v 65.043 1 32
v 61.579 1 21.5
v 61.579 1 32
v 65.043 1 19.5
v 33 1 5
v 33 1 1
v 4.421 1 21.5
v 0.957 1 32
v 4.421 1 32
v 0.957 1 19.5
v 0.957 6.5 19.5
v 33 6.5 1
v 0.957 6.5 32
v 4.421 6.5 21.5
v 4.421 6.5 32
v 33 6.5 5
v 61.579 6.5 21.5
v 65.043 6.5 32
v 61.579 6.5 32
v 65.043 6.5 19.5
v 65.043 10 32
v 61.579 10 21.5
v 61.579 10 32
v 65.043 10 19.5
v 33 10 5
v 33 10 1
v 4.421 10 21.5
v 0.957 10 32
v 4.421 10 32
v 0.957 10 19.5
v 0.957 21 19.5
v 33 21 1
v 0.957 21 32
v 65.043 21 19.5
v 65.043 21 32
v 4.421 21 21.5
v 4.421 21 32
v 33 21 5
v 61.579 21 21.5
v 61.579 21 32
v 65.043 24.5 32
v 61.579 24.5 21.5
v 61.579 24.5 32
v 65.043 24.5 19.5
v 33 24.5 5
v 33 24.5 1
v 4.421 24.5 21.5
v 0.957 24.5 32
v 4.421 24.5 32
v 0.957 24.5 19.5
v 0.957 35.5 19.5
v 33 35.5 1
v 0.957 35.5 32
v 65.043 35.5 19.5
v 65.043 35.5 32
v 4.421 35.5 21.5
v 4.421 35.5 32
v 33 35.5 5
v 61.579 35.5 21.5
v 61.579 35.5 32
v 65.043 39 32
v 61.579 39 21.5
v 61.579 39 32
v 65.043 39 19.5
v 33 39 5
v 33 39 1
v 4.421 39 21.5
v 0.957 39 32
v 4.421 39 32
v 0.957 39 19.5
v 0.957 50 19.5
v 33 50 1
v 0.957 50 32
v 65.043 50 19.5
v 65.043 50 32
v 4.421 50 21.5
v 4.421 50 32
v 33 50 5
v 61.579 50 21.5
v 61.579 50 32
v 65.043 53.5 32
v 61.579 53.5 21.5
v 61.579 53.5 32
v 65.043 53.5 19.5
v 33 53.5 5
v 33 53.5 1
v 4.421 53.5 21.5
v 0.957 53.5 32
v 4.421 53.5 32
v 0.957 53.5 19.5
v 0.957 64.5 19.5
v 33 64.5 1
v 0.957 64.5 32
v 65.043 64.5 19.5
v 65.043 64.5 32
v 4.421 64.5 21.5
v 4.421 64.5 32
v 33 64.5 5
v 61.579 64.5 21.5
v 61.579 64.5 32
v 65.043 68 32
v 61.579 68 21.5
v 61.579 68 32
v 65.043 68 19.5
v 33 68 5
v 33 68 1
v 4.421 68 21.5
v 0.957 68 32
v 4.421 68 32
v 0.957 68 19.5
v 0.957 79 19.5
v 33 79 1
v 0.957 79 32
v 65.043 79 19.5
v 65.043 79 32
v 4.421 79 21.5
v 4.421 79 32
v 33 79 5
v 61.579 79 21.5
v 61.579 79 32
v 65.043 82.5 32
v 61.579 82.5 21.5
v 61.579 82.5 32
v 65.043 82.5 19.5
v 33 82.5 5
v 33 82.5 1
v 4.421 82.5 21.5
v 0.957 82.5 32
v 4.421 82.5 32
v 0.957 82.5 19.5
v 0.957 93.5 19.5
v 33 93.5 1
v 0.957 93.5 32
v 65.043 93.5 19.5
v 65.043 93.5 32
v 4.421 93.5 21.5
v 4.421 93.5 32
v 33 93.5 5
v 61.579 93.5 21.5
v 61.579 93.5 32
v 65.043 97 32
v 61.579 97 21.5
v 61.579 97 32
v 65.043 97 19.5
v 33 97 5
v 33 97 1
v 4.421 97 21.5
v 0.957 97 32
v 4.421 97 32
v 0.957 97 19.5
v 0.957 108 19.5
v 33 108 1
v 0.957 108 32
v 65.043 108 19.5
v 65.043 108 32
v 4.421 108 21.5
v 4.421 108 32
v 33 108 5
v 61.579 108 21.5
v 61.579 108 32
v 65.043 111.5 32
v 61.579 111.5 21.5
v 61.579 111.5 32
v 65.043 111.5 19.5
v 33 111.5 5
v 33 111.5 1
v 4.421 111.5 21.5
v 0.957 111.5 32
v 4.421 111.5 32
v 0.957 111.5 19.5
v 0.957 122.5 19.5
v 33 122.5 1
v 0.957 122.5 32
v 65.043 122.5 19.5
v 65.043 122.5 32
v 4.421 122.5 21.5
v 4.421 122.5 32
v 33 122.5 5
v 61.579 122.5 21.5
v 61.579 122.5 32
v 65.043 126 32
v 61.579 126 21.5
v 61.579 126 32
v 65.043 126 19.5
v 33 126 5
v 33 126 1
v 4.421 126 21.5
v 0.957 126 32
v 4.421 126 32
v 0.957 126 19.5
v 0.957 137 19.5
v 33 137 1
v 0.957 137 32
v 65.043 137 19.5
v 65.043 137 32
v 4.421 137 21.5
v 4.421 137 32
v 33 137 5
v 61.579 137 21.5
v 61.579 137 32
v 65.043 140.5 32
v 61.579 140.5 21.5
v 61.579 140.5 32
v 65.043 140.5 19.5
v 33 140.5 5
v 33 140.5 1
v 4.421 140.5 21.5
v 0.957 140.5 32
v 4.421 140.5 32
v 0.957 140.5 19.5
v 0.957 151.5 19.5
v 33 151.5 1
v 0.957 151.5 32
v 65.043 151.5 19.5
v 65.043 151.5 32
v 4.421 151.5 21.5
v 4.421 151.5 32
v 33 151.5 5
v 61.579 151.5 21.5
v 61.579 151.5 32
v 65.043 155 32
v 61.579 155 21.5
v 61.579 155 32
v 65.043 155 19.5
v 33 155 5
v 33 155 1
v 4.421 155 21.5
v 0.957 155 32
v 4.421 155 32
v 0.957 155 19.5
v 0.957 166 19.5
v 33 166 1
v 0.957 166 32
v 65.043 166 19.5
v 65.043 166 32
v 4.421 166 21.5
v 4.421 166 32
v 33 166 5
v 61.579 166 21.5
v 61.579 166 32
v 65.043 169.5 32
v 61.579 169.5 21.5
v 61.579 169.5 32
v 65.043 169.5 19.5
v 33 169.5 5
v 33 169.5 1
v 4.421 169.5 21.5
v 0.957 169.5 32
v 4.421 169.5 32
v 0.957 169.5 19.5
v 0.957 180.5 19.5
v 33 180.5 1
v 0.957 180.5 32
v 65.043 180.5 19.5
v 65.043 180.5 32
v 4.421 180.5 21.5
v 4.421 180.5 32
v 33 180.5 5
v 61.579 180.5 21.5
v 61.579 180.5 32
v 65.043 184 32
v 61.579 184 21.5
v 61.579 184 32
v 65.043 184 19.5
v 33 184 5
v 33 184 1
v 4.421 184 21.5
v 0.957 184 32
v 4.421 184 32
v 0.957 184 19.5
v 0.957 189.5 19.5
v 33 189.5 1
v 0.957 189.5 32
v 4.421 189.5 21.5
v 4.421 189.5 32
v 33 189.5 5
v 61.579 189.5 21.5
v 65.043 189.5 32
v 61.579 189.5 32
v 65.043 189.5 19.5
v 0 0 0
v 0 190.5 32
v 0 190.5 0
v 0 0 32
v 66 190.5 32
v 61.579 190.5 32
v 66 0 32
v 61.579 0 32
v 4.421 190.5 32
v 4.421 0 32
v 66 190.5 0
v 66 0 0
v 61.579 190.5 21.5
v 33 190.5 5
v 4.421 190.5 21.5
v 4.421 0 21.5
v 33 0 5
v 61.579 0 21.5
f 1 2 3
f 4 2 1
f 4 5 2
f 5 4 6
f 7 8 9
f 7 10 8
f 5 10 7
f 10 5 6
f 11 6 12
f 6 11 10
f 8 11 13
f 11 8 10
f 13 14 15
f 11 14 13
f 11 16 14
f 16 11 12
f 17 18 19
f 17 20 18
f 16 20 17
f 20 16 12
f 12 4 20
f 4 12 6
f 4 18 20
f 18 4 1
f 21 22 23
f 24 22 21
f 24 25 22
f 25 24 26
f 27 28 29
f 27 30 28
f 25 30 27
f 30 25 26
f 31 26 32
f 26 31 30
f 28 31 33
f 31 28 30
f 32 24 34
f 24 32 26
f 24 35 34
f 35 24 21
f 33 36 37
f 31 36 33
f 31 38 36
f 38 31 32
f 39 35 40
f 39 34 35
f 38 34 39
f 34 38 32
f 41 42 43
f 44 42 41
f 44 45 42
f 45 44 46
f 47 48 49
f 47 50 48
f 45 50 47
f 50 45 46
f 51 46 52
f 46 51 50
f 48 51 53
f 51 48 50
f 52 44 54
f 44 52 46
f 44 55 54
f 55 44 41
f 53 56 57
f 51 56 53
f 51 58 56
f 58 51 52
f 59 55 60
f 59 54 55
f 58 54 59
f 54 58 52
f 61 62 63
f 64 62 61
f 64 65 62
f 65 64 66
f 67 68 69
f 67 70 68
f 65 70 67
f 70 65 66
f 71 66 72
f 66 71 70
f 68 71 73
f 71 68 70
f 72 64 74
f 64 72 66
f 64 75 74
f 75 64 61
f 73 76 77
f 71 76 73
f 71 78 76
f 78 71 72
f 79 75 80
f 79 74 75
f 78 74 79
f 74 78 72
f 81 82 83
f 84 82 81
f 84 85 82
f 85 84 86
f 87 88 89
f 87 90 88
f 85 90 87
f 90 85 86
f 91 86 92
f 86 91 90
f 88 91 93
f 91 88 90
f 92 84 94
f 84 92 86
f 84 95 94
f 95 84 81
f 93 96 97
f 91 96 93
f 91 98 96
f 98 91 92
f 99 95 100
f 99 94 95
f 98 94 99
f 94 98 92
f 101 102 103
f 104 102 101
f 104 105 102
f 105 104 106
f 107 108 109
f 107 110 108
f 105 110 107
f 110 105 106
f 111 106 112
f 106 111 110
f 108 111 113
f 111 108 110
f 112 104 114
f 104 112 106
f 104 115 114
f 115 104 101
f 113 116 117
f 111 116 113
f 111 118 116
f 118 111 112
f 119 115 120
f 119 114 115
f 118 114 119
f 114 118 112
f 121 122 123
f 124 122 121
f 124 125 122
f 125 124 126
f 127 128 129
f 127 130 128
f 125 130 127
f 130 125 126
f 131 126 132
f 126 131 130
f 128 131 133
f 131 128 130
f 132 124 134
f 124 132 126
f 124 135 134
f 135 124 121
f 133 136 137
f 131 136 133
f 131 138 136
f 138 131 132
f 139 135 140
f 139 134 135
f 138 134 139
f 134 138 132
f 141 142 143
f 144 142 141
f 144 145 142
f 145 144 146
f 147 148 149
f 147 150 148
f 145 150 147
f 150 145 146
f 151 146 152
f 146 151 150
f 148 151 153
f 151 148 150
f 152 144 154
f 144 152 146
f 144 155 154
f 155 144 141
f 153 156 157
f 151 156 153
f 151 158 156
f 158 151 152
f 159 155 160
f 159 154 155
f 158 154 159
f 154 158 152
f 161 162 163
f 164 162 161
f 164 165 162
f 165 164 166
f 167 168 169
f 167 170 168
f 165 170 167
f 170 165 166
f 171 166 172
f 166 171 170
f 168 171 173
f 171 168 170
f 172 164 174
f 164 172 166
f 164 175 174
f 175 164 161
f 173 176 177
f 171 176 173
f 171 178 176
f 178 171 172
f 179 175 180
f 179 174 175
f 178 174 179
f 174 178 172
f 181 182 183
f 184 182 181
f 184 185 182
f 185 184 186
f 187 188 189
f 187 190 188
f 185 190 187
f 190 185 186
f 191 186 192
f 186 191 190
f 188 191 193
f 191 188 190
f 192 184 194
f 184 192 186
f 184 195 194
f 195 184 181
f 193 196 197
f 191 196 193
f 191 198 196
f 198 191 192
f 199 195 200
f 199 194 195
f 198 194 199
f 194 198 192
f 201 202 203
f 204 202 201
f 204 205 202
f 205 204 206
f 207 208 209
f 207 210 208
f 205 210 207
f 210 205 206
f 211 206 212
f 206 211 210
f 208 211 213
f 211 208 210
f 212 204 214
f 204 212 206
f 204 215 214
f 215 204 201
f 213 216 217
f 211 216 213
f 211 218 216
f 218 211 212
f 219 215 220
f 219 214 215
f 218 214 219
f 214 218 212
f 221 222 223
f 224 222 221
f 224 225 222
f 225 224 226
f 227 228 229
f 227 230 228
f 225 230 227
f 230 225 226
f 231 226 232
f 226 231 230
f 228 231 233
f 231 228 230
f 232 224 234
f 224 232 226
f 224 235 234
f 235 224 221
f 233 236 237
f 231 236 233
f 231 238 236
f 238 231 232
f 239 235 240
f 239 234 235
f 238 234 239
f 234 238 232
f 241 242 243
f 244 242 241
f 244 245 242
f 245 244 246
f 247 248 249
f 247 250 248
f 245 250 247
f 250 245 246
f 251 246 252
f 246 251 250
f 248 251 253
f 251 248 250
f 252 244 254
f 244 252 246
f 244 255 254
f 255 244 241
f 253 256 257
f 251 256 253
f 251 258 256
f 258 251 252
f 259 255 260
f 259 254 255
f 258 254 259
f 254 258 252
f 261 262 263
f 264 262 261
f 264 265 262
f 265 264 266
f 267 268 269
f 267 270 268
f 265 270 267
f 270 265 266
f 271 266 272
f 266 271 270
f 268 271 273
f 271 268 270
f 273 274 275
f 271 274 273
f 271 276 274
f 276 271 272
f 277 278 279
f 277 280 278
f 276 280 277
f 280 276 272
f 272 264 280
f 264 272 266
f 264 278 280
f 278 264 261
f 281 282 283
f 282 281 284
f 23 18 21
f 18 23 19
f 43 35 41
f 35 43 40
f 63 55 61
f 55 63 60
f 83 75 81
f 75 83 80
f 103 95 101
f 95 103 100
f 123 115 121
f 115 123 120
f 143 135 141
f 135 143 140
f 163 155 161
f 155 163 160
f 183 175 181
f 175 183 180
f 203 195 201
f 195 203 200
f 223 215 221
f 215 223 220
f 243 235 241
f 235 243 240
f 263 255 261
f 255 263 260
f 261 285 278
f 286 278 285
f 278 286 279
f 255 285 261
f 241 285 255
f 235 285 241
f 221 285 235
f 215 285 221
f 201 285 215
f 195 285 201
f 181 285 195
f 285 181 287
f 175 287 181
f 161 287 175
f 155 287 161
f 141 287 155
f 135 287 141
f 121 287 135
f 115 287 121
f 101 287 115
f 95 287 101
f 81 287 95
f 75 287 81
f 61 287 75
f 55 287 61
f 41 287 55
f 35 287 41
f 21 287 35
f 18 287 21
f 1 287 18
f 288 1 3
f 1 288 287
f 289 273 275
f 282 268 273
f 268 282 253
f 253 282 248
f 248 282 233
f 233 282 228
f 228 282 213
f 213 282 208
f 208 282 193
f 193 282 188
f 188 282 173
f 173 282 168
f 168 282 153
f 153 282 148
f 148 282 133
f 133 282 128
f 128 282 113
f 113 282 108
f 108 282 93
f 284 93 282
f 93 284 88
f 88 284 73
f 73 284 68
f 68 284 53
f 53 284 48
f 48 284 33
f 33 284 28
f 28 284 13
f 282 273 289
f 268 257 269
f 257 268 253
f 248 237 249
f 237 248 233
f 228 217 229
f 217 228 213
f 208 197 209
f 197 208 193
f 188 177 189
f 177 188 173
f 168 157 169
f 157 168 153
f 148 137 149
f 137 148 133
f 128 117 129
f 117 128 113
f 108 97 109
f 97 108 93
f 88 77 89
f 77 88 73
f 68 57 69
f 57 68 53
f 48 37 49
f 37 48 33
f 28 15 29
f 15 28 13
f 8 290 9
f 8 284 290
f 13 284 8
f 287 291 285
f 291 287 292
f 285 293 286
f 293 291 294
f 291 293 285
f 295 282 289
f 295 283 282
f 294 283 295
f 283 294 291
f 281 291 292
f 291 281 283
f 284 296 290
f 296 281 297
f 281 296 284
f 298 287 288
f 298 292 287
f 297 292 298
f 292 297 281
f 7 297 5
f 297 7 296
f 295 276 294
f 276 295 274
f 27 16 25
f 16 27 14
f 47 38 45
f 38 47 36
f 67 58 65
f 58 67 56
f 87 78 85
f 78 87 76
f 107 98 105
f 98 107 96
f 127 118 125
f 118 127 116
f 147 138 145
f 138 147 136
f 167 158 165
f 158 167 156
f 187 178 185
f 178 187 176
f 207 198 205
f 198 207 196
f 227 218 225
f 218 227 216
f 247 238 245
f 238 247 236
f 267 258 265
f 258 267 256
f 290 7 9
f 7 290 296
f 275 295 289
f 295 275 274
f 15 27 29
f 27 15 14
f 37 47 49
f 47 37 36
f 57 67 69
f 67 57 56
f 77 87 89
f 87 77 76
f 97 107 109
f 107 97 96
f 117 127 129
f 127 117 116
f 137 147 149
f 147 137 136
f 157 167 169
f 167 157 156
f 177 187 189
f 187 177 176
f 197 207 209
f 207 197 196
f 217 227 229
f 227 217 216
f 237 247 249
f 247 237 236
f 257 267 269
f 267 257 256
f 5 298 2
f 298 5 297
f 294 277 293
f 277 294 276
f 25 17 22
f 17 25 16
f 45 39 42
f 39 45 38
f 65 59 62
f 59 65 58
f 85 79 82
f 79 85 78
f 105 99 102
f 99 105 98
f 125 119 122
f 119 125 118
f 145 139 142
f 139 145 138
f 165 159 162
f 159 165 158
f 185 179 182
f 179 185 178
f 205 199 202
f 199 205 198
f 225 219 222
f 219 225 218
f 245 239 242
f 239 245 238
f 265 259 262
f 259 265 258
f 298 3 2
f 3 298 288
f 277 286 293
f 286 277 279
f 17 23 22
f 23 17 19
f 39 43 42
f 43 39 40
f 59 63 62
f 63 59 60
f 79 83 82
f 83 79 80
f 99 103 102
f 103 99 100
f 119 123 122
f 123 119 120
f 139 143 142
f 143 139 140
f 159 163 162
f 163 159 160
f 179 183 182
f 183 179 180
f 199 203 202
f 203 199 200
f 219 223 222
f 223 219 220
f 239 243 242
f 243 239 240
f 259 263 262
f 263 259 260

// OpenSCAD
$fn=200;
THICK = 1;

TILE_L = 9;
TILE_COUNT = 24;

BOX_W = 64;
BOX_L = 188.5;
BOX_H = 32;

difference() {
    cube(size = [
        BOX_W + (THICK * 2),
        BOX_L + (THICK * 2), 
        BOX_H]);

    translate([33, -5, 38])
        rotate([0, 90, 90]) 
            cylinder(h = 300, r = 33, $fn=6);

    for (i = [0 : 1 : TILE_COUNT / 2] ) {
        tile_slot(1 + (i * 5.5) + (TILE_L * i));
        tile_slot(1 + (i * 5.5) + (TILE_L * (i + 1)));
    }
}

module tile_slot(y) {
    translate([33, y, 38])
        rotate([0, 90, 90]) 
            cylinder(h = 5.5, r = 37, $fn=6);
}
